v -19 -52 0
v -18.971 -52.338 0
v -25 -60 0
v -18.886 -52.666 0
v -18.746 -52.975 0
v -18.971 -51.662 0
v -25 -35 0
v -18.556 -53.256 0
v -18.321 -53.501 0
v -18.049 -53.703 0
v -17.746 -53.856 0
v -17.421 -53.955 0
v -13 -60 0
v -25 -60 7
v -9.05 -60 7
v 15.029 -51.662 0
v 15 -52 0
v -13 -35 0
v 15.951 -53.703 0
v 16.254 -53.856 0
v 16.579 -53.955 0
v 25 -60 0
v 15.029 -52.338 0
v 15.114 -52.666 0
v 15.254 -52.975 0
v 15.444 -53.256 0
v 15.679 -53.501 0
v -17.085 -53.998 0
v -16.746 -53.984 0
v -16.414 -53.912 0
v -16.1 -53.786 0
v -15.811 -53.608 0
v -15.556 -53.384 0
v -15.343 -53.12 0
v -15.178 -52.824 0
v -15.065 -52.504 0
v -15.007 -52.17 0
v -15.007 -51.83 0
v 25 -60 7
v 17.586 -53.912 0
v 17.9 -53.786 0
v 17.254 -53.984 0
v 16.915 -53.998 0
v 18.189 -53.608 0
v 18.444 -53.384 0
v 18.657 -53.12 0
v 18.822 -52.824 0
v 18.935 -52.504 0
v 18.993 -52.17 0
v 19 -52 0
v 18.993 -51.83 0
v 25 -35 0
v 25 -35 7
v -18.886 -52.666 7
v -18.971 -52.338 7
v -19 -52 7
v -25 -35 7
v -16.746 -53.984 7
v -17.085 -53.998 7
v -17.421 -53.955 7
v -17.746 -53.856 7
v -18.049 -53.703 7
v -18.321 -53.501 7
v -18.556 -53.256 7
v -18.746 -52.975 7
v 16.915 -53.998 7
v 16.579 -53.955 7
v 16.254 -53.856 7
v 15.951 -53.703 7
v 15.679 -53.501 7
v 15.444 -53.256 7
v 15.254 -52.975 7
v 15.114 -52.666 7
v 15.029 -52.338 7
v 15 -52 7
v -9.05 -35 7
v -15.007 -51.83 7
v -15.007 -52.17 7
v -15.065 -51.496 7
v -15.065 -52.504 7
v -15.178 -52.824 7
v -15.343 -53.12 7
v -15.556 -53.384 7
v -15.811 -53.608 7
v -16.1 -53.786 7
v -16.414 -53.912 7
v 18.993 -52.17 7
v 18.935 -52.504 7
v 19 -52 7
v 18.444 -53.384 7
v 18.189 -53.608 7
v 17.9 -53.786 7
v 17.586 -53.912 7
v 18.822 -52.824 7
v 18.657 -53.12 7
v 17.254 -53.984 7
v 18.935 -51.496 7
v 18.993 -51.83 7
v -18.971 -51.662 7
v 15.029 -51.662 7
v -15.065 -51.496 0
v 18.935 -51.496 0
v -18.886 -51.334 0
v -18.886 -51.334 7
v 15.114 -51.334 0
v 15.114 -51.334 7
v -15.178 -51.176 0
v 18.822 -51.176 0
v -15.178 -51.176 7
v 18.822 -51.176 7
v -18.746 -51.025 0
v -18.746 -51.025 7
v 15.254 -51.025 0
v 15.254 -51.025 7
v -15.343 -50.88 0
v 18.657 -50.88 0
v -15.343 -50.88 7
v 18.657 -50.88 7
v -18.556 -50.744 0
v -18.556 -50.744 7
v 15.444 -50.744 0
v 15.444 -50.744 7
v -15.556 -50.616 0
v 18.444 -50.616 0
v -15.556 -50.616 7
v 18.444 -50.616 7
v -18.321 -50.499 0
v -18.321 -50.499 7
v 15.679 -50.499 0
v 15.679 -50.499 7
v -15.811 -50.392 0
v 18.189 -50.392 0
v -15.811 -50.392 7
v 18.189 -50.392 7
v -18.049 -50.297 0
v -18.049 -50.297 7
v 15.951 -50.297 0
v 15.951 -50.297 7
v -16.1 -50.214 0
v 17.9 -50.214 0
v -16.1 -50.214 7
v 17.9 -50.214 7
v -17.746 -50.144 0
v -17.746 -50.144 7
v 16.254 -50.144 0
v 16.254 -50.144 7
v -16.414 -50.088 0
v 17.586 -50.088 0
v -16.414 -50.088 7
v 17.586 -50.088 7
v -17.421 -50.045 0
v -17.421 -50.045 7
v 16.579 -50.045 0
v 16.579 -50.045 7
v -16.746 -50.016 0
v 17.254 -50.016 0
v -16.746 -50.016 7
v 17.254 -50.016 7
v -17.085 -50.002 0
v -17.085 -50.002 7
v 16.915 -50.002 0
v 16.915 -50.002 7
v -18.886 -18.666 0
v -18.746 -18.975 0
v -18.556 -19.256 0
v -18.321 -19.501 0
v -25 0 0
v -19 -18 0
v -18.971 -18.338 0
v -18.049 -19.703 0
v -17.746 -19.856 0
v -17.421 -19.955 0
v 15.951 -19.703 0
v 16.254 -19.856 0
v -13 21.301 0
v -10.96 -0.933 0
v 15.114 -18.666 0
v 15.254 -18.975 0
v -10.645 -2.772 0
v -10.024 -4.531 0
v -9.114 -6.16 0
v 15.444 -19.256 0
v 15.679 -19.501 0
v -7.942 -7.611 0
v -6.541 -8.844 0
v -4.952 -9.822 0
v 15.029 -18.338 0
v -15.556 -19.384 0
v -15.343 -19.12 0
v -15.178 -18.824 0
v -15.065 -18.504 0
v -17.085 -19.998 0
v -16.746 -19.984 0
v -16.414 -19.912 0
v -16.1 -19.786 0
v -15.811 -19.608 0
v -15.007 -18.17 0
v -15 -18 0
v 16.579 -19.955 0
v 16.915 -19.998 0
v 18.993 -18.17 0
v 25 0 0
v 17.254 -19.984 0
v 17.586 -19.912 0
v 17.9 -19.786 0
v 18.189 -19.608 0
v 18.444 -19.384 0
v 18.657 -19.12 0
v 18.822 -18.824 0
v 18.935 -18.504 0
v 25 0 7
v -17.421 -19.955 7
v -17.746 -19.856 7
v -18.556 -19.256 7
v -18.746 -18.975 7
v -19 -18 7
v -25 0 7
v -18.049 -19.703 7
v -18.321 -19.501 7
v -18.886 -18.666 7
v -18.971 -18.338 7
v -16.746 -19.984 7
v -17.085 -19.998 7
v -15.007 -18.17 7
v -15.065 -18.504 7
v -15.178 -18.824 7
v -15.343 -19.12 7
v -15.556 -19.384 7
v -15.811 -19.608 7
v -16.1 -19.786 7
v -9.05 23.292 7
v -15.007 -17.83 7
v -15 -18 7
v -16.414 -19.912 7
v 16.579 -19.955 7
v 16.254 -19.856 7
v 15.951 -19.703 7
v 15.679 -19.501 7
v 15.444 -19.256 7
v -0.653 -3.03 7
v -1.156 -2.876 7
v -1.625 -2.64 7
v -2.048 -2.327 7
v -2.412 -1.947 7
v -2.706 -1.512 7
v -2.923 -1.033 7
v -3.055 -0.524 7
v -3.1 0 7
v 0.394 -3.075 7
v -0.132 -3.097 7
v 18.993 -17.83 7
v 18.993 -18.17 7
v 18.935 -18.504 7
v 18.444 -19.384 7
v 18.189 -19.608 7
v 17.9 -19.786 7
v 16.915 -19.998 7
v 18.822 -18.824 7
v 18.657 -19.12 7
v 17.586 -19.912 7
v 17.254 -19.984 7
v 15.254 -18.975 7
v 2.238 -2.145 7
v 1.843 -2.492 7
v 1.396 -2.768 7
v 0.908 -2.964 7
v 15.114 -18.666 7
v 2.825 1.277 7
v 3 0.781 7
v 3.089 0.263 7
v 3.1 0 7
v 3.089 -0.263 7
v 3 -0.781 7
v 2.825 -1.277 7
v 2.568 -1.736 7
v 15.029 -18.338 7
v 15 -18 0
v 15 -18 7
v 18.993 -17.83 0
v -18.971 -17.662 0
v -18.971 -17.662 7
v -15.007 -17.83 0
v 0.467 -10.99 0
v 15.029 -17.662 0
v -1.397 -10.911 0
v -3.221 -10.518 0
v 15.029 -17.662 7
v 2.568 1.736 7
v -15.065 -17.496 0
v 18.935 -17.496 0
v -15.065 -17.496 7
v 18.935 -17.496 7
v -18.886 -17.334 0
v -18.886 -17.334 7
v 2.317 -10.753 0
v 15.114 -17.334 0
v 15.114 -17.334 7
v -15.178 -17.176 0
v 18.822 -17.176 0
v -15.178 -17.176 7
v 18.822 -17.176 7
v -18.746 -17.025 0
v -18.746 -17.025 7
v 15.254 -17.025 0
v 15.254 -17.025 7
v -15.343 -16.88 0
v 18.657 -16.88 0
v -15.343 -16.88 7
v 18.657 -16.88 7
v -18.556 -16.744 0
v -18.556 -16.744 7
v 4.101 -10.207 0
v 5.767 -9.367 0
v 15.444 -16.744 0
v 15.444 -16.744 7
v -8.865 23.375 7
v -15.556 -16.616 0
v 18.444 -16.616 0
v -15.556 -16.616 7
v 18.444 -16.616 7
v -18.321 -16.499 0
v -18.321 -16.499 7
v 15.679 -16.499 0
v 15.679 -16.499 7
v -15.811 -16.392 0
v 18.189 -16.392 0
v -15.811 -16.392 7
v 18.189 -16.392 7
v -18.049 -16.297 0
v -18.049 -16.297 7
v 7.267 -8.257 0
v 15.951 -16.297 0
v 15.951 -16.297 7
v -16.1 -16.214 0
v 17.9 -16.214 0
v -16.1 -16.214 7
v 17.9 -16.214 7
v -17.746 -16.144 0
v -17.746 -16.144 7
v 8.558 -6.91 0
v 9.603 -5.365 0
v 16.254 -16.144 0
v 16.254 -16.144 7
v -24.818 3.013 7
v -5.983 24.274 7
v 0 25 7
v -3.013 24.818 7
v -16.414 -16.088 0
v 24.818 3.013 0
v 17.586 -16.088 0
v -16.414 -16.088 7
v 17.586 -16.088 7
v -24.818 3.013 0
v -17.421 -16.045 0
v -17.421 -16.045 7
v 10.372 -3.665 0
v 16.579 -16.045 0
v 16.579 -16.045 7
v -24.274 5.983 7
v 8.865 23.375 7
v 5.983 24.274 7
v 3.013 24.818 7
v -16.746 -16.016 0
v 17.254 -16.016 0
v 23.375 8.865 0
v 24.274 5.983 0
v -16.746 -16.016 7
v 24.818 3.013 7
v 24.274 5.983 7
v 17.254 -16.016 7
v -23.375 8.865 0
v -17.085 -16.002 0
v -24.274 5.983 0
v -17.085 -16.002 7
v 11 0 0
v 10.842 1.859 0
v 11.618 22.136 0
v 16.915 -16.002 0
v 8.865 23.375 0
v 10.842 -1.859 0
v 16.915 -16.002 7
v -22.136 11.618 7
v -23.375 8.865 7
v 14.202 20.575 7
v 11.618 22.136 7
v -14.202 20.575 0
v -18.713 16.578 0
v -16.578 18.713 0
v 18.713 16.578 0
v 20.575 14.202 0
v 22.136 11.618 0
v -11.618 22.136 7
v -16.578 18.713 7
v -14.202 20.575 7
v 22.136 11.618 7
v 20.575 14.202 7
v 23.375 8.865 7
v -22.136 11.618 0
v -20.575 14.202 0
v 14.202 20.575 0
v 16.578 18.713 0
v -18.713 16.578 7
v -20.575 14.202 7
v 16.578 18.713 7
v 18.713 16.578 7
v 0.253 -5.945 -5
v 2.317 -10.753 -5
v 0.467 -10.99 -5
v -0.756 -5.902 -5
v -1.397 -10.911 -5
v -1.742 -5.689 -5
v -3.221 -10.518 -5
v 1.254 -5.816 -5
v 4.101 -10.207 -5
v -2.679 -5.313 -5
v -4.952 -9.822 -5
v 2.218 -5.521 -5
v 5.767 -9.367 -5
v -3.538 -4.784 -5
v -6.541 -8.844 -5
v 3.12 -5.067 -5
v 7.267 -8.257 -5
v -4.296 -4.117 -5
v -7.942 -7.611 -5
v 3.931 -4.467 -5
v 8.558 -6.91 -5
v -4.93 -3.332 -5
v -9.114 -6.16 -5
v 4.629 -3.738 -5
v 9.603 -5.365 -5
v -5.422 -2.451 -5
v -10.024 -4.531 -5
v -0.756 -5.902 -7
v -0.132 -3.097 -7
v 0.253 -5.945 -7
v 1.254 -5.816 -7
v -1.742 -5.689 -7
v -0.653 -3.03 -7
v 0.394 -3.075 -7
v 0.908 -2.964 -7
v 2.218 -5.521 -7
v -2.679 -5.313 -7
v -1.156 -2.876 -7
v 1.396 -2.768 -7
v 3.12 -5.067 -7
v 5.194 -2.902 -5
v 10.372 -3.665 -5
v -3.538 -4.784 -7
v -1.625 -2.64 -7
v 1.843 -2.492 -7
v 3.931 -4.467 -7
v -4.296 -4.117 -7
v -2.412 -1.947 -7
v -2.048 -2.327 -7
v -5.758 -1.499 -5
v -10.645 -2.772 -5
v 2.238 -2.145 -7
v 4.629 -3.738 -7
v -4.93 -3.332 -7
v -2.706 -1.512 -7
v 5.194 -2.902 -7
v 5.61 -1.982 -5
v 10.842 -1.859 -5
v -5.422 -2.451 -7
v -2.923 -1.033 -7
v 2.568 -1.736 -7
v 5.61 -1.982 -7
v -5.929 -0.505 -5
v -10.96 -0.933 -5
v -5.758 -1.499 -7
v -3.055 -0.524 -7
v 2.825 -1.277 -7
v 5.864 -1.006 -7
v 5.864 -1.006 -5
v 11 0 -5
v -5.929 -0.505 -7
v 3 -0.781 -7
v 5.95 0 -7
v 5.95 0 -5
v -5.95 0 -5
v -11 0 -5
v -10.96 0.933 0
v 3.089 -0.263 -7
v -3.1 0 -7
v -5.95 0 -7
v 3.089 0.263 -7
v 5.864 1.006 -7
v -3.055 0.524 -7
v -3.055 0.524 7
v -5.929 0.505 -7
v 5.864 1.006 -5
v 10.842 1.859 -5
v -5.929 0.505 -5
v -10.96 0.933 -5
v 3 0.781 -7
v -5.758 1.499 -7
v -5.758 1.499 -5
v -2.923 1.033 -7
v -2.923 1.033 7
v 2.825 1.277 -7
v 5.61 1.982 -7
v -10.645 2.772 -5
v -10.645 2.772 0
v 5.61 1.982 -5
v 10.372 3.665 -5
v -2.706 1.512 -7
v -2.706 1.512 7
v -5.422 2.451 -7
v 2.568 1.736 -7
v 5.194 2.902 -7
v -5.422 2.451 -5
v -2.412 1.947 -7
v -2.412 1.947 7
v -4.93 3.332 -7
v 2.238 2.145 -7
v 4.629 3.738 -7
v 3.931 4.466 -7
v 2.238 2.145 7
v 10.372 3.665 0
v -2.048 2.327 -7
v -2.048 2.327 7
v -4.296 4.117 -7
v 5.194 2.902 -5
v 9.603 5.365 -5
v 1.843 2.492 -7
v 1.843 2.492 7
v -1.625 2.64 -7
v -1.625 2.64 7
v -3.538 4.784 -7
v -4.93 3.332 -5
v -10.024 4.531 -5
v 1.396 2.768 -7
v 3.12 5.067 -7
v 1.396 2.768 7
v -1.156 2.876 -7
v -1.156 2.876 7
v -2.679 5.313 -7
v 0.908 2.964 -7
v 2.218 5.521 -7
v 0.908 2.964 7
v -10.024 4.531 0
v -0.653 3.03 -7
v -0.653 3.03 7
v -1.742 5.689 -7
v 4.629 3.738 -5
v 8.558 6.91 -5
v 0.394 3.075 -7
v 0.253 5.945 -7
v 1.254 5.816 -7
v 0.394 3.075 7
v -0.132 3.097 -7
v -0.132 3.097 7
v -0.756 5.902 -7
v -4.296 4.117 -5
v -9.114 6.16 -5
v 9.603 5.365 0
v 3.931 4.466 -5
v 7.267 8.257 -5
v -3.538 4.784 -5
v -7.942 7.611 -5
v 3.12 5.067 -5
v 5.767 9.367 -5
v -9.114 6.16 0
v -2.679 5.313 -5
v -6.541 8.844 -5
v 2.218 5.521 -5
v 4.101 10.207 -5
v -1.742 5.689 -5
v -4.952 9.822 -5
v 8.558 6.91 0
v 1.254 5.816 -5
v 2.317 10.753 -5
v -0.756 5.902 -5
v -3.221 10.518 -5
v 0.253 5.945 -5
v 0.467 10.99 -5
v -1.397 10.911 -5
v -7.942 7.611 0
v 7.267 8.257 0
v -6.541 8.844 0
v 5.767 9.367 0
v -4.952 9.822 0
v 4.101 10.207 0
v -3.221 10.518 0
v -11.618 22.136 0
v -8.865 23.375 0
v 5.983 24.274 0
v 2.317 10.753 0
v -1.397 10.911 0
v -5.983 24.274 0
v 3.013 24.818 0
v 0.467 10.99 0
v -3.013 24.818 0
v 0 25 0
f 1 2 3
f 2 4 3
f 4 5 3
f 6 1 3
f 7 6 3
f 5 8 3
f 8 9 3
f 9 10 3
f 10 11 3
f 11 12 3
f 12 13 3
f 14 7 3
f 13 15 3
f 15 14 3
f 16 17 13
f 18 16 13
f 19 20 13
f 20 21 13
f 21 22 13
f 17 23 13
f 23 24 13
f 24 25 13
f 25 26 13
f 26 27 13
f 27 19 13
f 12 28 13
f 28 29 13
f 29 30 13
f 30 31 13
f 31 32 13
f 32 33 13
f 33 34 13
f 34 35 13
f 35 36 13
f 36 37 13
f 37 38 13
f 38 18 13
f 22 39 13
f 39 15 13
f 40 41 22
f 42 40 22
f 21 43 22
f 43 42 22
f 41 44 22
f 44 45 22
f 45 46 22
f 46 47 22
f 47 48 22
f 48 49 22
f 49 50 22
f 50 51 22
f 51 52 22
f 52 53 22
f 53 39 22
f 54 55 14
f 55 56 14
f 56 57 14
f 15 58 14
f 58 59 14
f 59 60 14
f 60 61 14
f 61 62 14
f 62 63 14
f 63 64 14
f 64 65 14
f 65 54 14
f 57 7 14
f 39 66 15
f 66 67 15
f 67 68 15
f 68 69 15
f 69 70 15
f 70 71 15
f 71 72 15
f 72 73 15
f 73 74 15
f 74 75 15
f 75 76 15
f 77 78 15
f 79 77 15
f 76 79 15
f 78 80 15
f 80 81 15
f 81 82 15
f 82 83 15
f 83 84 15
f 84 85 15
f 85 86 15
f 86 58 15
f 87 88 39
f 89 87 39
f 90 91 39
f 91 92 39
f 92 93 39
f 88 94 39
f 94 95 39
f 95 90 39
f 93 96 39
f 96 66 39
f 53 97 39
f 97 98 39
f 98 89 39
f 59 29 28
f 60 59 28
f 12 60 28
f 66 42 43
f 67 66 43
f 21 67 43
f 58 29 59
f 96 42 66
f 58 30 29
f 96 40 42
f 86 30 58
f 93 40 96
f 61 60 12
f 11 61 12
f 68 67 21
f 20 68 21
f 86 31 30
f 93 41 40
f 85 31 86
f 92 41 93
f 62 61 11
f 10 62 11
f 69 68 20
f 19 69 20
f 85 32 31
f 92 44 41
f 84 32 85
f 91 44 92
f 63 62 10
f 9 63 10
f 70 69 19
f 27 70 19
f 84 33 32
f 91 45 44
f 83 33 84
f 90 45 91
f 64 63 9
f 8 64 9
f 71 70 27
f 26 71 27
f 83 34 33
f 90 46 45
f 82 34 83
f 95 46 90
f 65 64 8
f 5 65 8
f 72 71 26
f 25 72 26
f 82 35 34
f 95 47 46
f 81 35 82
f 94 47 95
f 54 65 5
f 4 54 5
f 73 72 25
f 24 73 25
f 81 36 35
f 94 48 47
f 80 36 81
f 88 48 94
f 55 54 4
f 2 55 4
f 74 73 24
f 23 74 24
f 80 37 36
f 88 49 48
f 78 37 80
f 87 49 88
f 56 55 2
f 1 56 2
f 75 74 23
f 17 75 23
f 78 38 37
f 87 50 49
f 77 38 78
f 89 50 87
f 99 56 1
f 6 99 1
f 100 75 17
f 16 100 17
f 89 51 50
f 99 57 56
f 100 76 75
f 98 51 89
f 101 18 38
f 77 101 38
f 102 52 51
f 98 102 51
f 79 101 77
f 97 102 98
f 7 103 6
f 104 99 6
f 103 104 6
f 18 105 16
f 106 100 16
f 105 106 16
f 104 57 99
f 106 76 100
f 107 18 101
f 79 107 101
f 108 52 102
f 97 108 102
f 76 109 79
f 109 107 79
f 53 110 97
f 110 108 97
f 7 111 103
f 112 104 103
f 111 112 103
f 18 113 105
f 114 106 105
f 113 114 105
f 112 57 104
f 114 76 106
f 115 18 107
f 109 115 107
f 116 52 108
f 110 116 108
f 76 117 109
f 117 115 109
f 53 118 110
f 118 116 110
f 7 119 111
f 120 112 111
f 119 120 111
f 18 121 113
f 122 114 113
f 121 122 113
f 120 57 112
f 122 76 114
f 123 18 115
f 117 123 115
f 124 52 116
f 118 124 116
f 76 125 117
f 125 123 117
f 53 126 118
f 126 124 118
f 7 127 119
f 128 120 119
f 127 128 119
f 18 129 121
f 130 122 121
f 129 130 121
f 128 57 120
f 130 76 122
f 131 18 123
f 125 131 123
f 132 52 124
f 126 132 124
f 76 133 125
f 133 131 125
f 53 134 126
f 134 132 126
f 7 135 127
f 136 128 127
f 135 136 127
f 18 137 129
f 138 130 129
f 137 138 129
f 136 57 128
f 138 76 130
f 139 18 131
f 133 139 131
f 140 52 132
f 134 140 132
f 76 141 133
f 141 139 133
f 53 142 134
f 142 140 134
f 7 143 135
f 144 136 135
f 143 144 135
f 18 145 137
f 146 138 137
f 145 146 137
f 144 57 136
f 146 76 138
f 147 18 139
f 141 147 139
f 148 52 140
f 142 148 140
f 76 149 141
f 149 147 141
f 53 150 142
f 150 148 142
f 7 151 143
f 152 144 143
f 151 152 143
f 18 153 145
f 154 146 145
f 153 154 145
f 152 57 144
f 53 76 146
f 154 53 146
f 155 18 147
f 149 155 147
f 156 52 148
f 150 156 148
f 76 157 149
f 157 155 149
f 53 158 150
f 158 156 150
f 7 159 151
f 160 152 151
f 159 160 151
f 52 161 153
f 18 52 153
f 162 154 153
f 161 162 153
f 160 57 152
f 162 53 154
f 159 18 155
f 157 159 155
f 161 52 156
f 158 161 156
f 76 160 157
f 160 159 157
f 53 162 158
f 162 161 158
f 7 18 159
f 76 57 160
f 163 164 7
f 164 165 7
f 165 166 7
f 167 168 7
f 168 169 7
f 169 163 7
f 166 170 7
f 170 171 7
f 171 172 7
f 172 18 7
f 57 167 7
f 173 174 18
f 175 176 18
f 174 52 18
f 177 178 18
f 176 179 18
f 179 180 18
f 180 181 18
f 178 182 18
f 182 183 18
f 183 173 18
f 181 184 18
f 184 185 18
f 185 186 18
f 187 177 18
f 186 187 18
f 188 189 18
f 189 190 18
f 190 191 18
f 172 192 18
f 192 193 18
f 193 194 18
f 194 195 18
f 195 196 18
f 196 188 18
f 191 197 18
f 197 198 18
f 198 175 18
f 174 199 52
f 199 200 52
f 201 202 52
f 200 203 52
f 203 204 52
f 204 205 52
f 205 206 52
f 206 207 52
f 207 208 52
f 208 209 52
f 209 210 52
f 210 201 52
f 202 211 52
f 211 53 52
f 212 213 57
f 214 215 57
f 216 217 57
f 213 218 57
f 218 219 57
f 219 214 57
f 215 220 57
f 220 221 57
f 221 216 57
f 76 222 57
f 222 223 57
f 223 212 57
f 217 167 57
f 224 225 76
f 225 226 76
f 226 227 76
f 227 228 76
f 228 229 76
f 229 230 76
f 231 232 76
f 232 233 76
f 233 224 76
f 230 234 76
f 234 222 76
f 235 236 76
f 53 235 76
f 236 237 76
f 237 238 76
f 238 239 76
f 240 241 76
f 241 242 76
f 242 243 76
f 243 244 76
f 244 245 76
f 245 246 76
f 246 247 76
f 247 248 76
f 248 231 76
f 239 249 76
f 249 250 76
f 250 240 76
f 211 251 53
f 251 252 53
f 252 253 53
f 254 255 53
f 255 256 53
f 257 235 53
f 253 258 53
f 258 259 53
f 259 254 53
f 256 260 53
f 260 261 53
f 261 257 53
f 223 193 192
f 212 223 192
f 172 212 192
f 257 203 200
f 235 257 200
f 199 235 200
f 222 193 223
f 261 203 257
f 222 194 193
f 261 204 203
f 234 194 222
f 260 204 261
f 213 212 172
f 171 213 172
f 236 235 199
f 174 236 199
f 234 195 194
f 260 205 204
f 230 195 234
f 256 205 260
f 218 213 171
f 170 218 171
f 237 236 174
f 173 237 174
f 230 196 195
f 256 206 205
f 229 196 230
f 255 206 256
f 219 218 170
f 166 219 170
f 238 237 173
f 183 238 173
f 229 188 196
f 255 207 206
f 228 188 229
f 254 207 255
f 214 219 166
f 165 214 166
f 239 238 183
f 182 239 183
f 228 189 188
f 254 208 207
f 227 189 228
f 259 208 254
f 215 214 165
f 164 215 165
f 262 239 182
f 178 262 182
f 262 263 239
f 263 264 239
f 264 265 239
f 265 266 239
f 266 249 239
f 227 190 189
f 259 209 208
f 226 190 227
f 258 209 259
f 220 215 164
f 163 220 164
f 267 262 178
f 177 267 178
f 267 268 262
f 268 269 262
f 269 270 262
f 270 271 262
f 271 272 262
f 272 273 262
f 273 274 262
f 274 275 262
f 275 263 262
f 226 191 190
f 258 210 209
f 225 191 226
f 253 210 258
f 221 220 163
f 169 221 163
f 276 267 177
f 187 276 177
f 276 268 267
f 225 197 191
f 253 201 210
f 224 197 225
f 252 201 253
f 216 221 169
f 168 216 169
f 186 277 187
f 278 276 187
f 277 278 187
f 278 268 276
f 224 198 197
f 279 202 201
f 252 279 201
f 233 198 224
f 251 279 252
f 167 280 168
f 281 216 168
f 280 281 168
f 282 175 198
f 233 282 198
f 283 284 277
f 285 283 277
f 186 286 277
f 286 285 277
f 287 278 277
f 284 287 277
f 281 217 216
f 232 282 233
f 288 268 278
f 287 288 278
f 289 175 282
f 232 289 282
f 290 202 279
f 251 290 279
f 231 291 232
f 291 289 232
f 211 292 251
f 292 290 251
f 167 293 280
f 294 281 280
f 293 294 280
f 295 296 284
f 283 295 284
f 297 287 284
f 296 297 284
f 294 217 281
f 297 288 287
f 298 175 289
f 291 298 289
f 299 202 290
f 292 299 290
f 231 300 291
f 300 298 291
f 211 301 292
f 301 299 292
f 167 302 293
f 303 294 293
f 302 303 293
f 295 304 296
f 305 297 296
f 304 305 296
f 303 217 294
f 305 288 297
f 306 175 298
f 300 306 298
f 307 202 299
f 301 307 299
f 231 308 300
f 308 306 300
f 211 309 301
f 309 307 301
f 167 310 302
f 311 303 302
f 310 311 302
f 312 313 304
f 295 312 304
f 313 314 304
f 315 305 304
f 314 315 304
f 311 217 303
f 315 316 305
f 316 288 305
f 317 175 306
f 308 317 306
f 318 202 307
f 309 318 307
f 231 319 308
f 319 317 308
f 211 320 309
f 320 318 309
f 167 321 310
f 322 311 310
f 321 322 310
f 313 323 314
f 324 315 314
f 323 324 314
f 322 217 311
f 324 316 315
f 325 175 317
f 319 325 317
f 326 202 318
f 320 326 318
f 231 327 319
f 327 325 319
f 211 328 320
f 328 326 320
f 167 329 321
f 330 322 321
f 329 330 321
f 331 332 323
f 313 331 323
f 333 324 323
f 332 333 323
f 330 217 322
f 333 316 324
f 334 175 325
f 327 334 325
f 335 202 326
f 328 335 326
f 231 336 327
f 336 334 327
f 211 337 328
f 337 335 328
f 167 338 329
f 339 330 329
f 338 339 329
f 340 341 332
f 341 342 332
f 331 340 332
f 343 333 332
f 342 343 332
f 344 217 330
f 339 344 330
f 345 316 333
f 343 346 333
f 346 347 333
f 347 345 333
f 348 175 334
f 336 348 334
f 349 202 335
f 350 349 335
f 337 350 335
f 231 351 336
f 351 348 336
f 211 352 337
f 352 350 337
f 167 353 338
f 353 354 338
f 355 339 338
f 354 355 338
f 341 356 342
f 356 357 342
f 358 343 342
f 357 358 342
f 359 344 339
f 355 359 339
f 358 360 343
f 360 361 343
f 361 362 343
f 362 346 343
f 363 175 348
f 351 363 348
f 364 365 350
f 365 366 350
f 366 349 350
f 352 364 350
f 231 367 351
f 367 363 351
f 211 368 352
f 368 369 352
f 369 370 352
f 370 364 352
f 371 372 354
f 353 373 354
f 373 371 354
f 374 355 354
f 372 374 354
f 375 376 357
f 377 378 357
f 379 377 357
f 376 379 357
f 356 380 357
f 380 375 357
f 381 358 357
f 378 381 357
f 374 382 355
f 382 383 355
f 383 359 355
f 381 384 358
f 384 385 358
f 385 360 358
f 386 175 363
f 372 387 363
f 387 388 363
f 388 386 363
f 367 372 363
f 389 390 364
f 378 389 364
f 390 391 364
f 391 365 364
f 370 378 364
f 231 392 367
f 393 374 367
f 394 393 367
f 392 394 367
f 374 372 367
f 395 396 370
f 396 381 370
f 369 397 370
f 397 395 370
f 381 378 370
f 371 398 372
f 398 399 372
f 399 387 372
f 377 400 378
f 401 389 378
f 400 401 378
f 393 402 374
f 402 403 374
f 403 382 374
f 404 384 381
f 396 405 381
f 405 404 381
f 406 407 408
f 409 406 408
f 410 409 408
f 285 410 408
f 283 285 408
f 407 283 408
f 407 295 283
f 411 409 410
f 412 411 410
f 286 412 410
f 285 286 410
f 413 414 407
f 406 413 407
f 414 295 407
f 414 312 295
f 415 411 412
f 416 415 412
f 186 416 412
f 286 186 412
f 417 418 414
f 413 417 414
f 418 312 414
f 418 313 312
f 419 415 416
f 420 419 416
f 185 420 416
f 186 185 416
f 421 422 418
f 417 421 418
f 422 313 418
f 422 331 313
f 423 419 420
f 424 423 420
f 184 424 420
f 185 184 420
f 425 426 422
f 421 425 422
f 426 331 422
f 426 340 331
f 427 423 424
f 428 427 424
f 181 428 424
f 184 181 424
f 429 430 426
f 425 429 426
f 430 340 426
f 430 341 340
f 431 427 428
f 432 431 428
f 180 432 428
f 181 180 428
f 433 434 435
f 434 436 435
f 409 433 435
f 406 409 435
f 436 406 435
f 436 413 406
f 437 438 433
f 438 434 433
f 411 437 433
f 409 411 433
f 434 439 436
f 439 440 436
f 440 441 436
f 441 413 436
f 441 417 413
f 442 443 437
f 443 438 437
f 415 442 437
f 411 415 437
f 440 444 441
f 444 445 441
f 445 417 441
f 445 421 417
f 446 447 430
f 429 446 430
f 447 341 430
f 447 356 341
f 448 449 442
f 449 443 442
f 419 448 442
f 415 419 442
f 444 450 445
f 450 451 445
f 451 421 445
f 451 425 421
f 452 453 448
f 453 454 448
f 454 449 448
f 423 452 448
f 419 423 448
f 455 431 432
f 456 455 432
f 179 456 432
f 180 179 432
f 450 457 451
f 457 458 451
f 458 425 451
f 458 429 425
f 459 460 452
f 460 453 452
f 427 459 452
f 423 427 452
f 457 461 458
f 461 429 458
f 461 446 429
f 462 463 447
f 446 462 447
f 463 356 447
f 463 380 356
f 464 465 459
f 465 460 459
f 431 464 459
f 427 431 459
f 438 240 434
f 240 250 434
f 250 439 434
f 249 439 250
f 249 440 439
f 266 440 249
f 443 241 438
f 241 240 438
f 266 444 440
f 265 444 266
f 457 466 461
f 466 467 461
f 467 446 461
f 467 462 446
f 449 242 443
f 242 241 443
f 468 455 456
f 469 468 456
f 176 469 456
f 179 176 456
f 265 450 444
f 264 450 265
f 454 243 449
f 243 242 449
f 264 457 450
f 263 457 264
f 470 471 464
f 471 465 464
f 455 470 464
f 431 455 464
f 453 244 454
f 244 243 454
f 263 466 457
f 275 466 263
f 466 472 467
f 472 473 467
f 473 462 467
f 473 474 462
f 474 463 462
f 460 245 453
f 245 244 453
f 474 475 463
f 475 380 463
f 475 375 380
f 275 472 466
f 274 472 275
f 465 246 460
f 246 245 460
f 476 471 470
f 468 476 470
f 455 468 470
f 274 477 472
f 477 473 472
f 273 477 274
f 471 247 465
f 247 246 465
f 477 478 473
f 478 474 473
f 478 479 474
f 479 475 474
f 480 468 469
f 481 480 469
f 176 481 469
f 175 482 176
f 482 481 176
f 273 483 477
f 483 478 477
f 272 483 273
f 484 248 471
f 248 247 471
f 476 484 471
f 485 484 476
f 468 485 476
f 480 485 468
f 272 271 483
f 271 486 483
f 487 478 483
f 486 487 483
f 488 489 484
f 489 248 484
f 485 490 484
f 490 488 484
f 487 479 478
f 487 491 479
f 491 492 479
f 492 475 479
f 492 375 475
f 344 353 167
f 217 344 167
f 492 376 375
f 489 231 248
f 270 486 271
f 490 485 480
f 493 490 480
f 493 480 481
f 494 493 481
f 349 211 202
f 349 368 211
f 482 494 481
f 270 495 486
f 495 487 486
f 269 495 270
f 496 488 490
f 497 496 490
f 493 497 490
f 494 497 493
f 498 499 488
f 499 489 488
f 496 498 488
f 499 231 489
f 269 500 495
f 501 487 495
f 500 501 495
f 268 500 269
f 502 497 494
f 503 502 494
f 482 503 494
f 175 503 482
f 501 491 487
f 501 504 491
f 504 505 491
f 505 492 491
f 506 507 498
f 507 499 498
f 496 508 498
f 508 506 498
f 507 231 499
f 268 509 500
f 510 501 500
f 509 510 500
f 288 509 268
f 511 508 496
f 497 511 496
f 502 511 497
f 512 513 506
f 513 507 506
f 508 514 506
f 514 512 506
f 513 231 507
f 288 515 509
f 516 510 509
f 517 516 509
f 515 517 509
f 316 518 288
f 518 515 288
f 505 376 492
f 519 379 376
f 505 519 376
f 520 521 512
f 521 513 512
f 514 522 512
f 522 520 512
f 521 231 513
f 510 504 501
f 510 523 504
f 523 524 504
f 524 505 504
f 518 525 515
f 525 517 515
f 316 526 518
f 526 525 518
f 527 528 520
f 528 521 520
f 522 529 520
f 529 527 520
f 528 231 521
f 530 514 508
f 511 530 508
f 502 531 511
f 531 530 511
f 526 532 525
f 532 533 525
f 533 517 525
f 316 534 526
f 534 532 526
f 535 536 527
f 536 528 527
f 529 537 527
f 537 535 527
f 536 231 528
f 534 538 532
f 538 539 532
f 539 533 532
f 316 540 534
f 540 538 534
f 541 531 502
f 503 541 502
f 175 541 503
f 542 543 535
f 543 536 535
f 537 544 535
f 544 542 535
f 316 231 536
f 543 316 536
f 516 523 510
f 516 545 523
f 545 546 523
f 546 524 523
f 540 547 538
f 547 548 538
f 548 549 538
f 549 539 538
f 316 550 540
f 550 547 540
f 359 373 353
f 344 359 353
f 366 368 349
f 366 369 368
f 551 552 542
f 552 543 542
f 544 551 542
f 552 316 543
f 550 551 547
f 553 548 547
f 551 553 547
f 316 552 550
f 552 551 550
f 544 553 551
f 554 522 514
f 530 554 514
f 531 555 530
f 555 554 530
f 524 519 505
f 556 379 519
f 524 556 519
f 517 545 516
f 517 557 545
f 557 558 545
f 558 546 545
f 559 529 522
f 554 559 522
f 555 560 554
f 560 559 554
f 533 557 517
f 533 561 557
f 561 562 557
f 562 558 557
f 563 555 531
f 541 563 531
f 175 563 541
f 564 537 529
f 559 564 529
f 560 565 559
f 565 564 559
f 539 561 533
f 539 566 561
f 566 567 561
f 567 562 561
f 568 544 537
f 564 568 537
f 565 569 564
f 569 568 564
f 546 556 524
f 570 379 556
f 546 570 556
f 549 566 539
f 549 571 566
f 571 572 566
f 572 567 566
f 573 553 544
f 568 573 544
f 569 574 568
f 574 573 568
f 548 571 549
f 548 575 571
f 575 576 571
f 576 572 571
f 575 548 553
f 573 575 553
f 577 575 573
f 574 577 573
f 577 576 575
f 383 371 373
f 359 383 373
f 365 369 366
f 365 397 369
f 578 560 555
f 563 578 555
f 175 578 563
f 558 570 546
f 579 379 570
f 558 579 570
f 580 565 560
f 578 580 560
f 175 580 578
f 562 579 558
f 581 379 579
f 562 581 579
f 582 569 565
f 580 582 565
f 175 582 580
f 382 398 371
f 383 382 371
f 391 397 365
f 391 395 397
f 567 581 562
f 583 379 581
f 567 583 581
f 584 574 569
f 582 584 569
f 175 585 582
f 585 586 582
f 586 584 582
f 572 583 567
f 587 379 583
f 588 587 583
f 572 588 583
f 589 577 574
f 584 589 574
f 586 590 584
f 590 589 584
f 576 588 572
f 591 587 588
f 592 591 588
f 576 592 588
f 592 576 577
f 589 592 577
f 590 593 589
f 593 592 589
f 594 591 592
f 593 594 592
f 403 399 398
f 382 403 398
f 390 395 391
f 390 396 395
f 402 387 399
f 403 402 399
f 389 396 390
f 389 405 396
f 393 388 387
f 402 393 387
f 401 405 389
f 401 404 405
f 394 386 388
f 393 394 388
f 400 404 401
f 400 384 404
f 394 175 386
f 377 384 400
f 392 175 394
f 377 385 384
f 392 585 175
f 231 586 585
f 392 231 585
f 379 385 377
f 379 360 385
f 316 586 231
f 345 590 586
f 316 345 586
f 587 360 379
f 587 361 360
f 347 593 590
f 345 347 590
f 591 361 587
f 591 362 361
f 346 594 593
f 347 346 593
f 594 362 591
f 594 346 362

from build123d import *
from build123d.topology import SkipClean

# Parameters (mm, degrees)
SKIZZE1_R                       = 3.1
SKIZZE1_R_2                     = 2
AUFSATZ_LINEAR_AUSTRAGEN1_DEPTH = 7
AUFSATZ_LINEAR_START            = 7
SKIZZE2_R                       = 5.95
SKIZZE2_R_2                     = 3.1
AUFSATZ_LINEAR_AUSTRAGEN2_DEPTH = 7
AUFSATZ_LINEAR_START_2          = 5
SKIZZE3_R                       = 11
SKIZZE3_R_2                     = 5.95
AUFSATZ_LINEAR_AUSTRAGEN3_DEPTH = 5


with BuildPart() as part:
    # Skizze1 → Aufsatz-Linear austragen1 (new body)
    with BuildSketch(Plane.XY):
        with BuildLine():
            Line((-25, 0), (-25, -60))
            Line((-25, -60), (25, -60))
            Line((25, -60), (25, 0))
            ThreePointArc((25, 0), (0, 25), (-25, 0))
        make_face()
        Circle(SKIZZE1_R, mode=Mode.SUBTRACT)
        with Locations((-17, -18)):
            Circle(SKIZZE1_R_2, mode=Mode.SUBTRACT)
        with Locations(Location((-17, -52, 0), (0, 0, 180))):
            Circle(SKIZZE1_R_2, mode=Mode.SUBTRACT)
        with Locations(Location((17, -18, 0), (0, 0, 180))):
            Circle(SKIZZE1_R_2, mode=Mode.SUBTRACT)
        with Locations((17, -52)):
            Circle(SKIZZE1_R_2, mode=Mode.SUBTRACT)
    extrude(amount=AUFSATZ_LINEAR_AUSTRAGEN1_DEPTH)

    # Skizze2 → Aufsatz-Linear austragen2 (add)
    with SkipClean():  # the faces are left unmerged after this step: merging them gives an invalid solid
        with BuildSketch(Plane(origin=(0, 0, 0), x_dir=(-1, 0, 0), z_dir=(0, 0, -1)).offset(AUFSATZ_LINEAR_START)):
            with Locations(Location((0, 0, 0), (0, 0, 180))):
                Circle(SKIZZE2_R)
            Circle(SKIZZE2_R_2, mode=Mode.SUBTRACT)
        extrude(amount=-AUFSATZ_LINEAR_AUSTRAGEN2_DEPTH)

    # Skizze3 → Aufsatz-Linear austragen3 (add)
    with SkipClean():  # the faces are left unmerged after this step: merging them gives an invalid solid
        with BuildSketch(Plane(origin=(0, 0, 0), x_dir=(-1, 0, 0), z_dir=(0, 0, -1)).offset(AUFSATZ_LINEAR_START_2)):
            with Locations(Location((0, 0, 0), (0, 0, 180))):
                Circle(SKIZZE3_R)
            Circle(SKIZZE3_R_2, mode=Mode.SUBTRACT)
        extrude(amount=-AUFSATZ_LINEAR_AUSTRAGEN3_DEPTH)


solid = part.part
